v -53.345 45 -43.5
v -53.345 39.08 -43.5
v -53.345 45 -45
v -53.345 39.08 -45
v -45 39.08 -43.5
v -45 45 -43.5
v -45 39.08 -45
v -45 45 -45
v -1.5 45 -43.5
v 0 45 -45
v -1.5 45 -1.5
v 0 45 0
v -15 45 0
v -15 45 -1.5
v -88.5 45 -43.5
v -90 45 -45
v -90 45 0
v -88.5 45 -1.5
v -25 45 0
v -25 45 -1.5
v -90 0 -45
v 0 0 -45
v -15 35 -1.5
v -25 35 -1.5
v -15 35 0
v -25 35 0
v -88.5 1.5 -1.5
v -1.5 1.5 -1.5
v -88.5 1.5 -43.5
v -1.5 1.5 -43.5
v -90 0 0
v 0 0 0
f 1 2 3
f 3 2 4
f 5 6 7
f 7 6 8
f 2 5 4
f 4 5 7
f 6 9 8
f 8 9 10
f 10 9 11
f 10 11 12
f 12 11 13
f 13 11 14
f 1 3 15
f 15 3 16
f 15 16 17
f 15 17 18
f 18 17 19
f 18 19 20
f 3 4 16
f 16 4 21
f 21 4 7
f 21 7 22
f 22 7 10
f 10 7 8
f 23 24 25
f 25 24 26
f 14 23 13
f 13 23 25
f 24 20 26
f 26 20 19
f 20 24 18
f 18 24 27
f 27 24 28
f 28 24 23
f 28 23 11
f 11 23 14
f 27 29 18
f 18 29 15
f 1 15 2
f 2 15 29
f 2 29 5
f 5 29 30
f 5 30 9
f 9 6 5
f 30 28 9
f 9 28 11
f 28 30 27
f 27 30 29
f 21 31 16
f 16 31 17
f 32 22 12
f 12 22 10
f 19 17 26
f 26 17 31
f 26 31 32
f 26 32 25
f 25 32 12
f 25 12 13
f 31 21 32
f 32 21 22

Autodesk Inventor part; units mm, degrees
ref_plane "YZ Plane" through (0, 0, 0) normal (1, 0, 0) x (0, 1, 0)
ref_plane "XZ Plane" through (0, 0, 0) normal (0, 1, 0) x (-1, 0, 0)
ref_plane "XY Plane" through (0, 0, 0) normal (0, 0, 1) x (1, 0, 0)
sketch "Sketch1" plane through (0, 0, 0) normal (0, 1, 0) x (-1, 0, 0)
  line L0 (0, 0) -> (90, 0)
  line L1 (90, 0) -> (90, -45)
  line L2 (90, -45) -> (0, -45)
  line L3 (0, -45) -> (0, 0)
  dimension "d0" = 90
  dimension "d1" = 45
extrude "Extrusion1" add sketch "Sketch1" along normal blind 45
sketch "Sketch2" plane through (0, 45, 0) normal (0, 1, 0) x (1, 0, 0)
  point P0 (0, 0)
shell "Shell1" thickness 1.5 removed faces 1 at (-30, 45, -15)
sketch "Sketch3" plane through (-90, 0, 0) normal (0, 0, 1) x (1, 0, 0)
  line L0 (75, 35) -> (65, 35)
  line L1 (1.5, 45) -> (88.5, 45) projected
  line L2 (75, 35) -> (65, 35)
  line L3 (65, 35) -> (65, 45)
  line L4 (65, 45) -> (75, 45)
  line L5 (75, 45) -> (75, 35)
  point P0 (90, 0)
extrude "Extrusion2" cut sketch "Sketch3" against normal blind 10
sketch "Sketch4" plane through (0, 0, -45) normal (0, 0, -1) x (-1, 0, 0)
  line L0 (45, 45) -> (53.3446, 45)
  line L1 (53.3446, 45) -> (53.3446, 39.0799)
  line L2 (53.3446, 39.0799) -> (45, 39.0799)
  line L3 (45, 39.0799) -> (45, 45)
  point P0 (0, 0)
extrude "Extrusion3" cut sketch "Sketch4" against normal blind 10
properties part number "Scannerboxbottom"
